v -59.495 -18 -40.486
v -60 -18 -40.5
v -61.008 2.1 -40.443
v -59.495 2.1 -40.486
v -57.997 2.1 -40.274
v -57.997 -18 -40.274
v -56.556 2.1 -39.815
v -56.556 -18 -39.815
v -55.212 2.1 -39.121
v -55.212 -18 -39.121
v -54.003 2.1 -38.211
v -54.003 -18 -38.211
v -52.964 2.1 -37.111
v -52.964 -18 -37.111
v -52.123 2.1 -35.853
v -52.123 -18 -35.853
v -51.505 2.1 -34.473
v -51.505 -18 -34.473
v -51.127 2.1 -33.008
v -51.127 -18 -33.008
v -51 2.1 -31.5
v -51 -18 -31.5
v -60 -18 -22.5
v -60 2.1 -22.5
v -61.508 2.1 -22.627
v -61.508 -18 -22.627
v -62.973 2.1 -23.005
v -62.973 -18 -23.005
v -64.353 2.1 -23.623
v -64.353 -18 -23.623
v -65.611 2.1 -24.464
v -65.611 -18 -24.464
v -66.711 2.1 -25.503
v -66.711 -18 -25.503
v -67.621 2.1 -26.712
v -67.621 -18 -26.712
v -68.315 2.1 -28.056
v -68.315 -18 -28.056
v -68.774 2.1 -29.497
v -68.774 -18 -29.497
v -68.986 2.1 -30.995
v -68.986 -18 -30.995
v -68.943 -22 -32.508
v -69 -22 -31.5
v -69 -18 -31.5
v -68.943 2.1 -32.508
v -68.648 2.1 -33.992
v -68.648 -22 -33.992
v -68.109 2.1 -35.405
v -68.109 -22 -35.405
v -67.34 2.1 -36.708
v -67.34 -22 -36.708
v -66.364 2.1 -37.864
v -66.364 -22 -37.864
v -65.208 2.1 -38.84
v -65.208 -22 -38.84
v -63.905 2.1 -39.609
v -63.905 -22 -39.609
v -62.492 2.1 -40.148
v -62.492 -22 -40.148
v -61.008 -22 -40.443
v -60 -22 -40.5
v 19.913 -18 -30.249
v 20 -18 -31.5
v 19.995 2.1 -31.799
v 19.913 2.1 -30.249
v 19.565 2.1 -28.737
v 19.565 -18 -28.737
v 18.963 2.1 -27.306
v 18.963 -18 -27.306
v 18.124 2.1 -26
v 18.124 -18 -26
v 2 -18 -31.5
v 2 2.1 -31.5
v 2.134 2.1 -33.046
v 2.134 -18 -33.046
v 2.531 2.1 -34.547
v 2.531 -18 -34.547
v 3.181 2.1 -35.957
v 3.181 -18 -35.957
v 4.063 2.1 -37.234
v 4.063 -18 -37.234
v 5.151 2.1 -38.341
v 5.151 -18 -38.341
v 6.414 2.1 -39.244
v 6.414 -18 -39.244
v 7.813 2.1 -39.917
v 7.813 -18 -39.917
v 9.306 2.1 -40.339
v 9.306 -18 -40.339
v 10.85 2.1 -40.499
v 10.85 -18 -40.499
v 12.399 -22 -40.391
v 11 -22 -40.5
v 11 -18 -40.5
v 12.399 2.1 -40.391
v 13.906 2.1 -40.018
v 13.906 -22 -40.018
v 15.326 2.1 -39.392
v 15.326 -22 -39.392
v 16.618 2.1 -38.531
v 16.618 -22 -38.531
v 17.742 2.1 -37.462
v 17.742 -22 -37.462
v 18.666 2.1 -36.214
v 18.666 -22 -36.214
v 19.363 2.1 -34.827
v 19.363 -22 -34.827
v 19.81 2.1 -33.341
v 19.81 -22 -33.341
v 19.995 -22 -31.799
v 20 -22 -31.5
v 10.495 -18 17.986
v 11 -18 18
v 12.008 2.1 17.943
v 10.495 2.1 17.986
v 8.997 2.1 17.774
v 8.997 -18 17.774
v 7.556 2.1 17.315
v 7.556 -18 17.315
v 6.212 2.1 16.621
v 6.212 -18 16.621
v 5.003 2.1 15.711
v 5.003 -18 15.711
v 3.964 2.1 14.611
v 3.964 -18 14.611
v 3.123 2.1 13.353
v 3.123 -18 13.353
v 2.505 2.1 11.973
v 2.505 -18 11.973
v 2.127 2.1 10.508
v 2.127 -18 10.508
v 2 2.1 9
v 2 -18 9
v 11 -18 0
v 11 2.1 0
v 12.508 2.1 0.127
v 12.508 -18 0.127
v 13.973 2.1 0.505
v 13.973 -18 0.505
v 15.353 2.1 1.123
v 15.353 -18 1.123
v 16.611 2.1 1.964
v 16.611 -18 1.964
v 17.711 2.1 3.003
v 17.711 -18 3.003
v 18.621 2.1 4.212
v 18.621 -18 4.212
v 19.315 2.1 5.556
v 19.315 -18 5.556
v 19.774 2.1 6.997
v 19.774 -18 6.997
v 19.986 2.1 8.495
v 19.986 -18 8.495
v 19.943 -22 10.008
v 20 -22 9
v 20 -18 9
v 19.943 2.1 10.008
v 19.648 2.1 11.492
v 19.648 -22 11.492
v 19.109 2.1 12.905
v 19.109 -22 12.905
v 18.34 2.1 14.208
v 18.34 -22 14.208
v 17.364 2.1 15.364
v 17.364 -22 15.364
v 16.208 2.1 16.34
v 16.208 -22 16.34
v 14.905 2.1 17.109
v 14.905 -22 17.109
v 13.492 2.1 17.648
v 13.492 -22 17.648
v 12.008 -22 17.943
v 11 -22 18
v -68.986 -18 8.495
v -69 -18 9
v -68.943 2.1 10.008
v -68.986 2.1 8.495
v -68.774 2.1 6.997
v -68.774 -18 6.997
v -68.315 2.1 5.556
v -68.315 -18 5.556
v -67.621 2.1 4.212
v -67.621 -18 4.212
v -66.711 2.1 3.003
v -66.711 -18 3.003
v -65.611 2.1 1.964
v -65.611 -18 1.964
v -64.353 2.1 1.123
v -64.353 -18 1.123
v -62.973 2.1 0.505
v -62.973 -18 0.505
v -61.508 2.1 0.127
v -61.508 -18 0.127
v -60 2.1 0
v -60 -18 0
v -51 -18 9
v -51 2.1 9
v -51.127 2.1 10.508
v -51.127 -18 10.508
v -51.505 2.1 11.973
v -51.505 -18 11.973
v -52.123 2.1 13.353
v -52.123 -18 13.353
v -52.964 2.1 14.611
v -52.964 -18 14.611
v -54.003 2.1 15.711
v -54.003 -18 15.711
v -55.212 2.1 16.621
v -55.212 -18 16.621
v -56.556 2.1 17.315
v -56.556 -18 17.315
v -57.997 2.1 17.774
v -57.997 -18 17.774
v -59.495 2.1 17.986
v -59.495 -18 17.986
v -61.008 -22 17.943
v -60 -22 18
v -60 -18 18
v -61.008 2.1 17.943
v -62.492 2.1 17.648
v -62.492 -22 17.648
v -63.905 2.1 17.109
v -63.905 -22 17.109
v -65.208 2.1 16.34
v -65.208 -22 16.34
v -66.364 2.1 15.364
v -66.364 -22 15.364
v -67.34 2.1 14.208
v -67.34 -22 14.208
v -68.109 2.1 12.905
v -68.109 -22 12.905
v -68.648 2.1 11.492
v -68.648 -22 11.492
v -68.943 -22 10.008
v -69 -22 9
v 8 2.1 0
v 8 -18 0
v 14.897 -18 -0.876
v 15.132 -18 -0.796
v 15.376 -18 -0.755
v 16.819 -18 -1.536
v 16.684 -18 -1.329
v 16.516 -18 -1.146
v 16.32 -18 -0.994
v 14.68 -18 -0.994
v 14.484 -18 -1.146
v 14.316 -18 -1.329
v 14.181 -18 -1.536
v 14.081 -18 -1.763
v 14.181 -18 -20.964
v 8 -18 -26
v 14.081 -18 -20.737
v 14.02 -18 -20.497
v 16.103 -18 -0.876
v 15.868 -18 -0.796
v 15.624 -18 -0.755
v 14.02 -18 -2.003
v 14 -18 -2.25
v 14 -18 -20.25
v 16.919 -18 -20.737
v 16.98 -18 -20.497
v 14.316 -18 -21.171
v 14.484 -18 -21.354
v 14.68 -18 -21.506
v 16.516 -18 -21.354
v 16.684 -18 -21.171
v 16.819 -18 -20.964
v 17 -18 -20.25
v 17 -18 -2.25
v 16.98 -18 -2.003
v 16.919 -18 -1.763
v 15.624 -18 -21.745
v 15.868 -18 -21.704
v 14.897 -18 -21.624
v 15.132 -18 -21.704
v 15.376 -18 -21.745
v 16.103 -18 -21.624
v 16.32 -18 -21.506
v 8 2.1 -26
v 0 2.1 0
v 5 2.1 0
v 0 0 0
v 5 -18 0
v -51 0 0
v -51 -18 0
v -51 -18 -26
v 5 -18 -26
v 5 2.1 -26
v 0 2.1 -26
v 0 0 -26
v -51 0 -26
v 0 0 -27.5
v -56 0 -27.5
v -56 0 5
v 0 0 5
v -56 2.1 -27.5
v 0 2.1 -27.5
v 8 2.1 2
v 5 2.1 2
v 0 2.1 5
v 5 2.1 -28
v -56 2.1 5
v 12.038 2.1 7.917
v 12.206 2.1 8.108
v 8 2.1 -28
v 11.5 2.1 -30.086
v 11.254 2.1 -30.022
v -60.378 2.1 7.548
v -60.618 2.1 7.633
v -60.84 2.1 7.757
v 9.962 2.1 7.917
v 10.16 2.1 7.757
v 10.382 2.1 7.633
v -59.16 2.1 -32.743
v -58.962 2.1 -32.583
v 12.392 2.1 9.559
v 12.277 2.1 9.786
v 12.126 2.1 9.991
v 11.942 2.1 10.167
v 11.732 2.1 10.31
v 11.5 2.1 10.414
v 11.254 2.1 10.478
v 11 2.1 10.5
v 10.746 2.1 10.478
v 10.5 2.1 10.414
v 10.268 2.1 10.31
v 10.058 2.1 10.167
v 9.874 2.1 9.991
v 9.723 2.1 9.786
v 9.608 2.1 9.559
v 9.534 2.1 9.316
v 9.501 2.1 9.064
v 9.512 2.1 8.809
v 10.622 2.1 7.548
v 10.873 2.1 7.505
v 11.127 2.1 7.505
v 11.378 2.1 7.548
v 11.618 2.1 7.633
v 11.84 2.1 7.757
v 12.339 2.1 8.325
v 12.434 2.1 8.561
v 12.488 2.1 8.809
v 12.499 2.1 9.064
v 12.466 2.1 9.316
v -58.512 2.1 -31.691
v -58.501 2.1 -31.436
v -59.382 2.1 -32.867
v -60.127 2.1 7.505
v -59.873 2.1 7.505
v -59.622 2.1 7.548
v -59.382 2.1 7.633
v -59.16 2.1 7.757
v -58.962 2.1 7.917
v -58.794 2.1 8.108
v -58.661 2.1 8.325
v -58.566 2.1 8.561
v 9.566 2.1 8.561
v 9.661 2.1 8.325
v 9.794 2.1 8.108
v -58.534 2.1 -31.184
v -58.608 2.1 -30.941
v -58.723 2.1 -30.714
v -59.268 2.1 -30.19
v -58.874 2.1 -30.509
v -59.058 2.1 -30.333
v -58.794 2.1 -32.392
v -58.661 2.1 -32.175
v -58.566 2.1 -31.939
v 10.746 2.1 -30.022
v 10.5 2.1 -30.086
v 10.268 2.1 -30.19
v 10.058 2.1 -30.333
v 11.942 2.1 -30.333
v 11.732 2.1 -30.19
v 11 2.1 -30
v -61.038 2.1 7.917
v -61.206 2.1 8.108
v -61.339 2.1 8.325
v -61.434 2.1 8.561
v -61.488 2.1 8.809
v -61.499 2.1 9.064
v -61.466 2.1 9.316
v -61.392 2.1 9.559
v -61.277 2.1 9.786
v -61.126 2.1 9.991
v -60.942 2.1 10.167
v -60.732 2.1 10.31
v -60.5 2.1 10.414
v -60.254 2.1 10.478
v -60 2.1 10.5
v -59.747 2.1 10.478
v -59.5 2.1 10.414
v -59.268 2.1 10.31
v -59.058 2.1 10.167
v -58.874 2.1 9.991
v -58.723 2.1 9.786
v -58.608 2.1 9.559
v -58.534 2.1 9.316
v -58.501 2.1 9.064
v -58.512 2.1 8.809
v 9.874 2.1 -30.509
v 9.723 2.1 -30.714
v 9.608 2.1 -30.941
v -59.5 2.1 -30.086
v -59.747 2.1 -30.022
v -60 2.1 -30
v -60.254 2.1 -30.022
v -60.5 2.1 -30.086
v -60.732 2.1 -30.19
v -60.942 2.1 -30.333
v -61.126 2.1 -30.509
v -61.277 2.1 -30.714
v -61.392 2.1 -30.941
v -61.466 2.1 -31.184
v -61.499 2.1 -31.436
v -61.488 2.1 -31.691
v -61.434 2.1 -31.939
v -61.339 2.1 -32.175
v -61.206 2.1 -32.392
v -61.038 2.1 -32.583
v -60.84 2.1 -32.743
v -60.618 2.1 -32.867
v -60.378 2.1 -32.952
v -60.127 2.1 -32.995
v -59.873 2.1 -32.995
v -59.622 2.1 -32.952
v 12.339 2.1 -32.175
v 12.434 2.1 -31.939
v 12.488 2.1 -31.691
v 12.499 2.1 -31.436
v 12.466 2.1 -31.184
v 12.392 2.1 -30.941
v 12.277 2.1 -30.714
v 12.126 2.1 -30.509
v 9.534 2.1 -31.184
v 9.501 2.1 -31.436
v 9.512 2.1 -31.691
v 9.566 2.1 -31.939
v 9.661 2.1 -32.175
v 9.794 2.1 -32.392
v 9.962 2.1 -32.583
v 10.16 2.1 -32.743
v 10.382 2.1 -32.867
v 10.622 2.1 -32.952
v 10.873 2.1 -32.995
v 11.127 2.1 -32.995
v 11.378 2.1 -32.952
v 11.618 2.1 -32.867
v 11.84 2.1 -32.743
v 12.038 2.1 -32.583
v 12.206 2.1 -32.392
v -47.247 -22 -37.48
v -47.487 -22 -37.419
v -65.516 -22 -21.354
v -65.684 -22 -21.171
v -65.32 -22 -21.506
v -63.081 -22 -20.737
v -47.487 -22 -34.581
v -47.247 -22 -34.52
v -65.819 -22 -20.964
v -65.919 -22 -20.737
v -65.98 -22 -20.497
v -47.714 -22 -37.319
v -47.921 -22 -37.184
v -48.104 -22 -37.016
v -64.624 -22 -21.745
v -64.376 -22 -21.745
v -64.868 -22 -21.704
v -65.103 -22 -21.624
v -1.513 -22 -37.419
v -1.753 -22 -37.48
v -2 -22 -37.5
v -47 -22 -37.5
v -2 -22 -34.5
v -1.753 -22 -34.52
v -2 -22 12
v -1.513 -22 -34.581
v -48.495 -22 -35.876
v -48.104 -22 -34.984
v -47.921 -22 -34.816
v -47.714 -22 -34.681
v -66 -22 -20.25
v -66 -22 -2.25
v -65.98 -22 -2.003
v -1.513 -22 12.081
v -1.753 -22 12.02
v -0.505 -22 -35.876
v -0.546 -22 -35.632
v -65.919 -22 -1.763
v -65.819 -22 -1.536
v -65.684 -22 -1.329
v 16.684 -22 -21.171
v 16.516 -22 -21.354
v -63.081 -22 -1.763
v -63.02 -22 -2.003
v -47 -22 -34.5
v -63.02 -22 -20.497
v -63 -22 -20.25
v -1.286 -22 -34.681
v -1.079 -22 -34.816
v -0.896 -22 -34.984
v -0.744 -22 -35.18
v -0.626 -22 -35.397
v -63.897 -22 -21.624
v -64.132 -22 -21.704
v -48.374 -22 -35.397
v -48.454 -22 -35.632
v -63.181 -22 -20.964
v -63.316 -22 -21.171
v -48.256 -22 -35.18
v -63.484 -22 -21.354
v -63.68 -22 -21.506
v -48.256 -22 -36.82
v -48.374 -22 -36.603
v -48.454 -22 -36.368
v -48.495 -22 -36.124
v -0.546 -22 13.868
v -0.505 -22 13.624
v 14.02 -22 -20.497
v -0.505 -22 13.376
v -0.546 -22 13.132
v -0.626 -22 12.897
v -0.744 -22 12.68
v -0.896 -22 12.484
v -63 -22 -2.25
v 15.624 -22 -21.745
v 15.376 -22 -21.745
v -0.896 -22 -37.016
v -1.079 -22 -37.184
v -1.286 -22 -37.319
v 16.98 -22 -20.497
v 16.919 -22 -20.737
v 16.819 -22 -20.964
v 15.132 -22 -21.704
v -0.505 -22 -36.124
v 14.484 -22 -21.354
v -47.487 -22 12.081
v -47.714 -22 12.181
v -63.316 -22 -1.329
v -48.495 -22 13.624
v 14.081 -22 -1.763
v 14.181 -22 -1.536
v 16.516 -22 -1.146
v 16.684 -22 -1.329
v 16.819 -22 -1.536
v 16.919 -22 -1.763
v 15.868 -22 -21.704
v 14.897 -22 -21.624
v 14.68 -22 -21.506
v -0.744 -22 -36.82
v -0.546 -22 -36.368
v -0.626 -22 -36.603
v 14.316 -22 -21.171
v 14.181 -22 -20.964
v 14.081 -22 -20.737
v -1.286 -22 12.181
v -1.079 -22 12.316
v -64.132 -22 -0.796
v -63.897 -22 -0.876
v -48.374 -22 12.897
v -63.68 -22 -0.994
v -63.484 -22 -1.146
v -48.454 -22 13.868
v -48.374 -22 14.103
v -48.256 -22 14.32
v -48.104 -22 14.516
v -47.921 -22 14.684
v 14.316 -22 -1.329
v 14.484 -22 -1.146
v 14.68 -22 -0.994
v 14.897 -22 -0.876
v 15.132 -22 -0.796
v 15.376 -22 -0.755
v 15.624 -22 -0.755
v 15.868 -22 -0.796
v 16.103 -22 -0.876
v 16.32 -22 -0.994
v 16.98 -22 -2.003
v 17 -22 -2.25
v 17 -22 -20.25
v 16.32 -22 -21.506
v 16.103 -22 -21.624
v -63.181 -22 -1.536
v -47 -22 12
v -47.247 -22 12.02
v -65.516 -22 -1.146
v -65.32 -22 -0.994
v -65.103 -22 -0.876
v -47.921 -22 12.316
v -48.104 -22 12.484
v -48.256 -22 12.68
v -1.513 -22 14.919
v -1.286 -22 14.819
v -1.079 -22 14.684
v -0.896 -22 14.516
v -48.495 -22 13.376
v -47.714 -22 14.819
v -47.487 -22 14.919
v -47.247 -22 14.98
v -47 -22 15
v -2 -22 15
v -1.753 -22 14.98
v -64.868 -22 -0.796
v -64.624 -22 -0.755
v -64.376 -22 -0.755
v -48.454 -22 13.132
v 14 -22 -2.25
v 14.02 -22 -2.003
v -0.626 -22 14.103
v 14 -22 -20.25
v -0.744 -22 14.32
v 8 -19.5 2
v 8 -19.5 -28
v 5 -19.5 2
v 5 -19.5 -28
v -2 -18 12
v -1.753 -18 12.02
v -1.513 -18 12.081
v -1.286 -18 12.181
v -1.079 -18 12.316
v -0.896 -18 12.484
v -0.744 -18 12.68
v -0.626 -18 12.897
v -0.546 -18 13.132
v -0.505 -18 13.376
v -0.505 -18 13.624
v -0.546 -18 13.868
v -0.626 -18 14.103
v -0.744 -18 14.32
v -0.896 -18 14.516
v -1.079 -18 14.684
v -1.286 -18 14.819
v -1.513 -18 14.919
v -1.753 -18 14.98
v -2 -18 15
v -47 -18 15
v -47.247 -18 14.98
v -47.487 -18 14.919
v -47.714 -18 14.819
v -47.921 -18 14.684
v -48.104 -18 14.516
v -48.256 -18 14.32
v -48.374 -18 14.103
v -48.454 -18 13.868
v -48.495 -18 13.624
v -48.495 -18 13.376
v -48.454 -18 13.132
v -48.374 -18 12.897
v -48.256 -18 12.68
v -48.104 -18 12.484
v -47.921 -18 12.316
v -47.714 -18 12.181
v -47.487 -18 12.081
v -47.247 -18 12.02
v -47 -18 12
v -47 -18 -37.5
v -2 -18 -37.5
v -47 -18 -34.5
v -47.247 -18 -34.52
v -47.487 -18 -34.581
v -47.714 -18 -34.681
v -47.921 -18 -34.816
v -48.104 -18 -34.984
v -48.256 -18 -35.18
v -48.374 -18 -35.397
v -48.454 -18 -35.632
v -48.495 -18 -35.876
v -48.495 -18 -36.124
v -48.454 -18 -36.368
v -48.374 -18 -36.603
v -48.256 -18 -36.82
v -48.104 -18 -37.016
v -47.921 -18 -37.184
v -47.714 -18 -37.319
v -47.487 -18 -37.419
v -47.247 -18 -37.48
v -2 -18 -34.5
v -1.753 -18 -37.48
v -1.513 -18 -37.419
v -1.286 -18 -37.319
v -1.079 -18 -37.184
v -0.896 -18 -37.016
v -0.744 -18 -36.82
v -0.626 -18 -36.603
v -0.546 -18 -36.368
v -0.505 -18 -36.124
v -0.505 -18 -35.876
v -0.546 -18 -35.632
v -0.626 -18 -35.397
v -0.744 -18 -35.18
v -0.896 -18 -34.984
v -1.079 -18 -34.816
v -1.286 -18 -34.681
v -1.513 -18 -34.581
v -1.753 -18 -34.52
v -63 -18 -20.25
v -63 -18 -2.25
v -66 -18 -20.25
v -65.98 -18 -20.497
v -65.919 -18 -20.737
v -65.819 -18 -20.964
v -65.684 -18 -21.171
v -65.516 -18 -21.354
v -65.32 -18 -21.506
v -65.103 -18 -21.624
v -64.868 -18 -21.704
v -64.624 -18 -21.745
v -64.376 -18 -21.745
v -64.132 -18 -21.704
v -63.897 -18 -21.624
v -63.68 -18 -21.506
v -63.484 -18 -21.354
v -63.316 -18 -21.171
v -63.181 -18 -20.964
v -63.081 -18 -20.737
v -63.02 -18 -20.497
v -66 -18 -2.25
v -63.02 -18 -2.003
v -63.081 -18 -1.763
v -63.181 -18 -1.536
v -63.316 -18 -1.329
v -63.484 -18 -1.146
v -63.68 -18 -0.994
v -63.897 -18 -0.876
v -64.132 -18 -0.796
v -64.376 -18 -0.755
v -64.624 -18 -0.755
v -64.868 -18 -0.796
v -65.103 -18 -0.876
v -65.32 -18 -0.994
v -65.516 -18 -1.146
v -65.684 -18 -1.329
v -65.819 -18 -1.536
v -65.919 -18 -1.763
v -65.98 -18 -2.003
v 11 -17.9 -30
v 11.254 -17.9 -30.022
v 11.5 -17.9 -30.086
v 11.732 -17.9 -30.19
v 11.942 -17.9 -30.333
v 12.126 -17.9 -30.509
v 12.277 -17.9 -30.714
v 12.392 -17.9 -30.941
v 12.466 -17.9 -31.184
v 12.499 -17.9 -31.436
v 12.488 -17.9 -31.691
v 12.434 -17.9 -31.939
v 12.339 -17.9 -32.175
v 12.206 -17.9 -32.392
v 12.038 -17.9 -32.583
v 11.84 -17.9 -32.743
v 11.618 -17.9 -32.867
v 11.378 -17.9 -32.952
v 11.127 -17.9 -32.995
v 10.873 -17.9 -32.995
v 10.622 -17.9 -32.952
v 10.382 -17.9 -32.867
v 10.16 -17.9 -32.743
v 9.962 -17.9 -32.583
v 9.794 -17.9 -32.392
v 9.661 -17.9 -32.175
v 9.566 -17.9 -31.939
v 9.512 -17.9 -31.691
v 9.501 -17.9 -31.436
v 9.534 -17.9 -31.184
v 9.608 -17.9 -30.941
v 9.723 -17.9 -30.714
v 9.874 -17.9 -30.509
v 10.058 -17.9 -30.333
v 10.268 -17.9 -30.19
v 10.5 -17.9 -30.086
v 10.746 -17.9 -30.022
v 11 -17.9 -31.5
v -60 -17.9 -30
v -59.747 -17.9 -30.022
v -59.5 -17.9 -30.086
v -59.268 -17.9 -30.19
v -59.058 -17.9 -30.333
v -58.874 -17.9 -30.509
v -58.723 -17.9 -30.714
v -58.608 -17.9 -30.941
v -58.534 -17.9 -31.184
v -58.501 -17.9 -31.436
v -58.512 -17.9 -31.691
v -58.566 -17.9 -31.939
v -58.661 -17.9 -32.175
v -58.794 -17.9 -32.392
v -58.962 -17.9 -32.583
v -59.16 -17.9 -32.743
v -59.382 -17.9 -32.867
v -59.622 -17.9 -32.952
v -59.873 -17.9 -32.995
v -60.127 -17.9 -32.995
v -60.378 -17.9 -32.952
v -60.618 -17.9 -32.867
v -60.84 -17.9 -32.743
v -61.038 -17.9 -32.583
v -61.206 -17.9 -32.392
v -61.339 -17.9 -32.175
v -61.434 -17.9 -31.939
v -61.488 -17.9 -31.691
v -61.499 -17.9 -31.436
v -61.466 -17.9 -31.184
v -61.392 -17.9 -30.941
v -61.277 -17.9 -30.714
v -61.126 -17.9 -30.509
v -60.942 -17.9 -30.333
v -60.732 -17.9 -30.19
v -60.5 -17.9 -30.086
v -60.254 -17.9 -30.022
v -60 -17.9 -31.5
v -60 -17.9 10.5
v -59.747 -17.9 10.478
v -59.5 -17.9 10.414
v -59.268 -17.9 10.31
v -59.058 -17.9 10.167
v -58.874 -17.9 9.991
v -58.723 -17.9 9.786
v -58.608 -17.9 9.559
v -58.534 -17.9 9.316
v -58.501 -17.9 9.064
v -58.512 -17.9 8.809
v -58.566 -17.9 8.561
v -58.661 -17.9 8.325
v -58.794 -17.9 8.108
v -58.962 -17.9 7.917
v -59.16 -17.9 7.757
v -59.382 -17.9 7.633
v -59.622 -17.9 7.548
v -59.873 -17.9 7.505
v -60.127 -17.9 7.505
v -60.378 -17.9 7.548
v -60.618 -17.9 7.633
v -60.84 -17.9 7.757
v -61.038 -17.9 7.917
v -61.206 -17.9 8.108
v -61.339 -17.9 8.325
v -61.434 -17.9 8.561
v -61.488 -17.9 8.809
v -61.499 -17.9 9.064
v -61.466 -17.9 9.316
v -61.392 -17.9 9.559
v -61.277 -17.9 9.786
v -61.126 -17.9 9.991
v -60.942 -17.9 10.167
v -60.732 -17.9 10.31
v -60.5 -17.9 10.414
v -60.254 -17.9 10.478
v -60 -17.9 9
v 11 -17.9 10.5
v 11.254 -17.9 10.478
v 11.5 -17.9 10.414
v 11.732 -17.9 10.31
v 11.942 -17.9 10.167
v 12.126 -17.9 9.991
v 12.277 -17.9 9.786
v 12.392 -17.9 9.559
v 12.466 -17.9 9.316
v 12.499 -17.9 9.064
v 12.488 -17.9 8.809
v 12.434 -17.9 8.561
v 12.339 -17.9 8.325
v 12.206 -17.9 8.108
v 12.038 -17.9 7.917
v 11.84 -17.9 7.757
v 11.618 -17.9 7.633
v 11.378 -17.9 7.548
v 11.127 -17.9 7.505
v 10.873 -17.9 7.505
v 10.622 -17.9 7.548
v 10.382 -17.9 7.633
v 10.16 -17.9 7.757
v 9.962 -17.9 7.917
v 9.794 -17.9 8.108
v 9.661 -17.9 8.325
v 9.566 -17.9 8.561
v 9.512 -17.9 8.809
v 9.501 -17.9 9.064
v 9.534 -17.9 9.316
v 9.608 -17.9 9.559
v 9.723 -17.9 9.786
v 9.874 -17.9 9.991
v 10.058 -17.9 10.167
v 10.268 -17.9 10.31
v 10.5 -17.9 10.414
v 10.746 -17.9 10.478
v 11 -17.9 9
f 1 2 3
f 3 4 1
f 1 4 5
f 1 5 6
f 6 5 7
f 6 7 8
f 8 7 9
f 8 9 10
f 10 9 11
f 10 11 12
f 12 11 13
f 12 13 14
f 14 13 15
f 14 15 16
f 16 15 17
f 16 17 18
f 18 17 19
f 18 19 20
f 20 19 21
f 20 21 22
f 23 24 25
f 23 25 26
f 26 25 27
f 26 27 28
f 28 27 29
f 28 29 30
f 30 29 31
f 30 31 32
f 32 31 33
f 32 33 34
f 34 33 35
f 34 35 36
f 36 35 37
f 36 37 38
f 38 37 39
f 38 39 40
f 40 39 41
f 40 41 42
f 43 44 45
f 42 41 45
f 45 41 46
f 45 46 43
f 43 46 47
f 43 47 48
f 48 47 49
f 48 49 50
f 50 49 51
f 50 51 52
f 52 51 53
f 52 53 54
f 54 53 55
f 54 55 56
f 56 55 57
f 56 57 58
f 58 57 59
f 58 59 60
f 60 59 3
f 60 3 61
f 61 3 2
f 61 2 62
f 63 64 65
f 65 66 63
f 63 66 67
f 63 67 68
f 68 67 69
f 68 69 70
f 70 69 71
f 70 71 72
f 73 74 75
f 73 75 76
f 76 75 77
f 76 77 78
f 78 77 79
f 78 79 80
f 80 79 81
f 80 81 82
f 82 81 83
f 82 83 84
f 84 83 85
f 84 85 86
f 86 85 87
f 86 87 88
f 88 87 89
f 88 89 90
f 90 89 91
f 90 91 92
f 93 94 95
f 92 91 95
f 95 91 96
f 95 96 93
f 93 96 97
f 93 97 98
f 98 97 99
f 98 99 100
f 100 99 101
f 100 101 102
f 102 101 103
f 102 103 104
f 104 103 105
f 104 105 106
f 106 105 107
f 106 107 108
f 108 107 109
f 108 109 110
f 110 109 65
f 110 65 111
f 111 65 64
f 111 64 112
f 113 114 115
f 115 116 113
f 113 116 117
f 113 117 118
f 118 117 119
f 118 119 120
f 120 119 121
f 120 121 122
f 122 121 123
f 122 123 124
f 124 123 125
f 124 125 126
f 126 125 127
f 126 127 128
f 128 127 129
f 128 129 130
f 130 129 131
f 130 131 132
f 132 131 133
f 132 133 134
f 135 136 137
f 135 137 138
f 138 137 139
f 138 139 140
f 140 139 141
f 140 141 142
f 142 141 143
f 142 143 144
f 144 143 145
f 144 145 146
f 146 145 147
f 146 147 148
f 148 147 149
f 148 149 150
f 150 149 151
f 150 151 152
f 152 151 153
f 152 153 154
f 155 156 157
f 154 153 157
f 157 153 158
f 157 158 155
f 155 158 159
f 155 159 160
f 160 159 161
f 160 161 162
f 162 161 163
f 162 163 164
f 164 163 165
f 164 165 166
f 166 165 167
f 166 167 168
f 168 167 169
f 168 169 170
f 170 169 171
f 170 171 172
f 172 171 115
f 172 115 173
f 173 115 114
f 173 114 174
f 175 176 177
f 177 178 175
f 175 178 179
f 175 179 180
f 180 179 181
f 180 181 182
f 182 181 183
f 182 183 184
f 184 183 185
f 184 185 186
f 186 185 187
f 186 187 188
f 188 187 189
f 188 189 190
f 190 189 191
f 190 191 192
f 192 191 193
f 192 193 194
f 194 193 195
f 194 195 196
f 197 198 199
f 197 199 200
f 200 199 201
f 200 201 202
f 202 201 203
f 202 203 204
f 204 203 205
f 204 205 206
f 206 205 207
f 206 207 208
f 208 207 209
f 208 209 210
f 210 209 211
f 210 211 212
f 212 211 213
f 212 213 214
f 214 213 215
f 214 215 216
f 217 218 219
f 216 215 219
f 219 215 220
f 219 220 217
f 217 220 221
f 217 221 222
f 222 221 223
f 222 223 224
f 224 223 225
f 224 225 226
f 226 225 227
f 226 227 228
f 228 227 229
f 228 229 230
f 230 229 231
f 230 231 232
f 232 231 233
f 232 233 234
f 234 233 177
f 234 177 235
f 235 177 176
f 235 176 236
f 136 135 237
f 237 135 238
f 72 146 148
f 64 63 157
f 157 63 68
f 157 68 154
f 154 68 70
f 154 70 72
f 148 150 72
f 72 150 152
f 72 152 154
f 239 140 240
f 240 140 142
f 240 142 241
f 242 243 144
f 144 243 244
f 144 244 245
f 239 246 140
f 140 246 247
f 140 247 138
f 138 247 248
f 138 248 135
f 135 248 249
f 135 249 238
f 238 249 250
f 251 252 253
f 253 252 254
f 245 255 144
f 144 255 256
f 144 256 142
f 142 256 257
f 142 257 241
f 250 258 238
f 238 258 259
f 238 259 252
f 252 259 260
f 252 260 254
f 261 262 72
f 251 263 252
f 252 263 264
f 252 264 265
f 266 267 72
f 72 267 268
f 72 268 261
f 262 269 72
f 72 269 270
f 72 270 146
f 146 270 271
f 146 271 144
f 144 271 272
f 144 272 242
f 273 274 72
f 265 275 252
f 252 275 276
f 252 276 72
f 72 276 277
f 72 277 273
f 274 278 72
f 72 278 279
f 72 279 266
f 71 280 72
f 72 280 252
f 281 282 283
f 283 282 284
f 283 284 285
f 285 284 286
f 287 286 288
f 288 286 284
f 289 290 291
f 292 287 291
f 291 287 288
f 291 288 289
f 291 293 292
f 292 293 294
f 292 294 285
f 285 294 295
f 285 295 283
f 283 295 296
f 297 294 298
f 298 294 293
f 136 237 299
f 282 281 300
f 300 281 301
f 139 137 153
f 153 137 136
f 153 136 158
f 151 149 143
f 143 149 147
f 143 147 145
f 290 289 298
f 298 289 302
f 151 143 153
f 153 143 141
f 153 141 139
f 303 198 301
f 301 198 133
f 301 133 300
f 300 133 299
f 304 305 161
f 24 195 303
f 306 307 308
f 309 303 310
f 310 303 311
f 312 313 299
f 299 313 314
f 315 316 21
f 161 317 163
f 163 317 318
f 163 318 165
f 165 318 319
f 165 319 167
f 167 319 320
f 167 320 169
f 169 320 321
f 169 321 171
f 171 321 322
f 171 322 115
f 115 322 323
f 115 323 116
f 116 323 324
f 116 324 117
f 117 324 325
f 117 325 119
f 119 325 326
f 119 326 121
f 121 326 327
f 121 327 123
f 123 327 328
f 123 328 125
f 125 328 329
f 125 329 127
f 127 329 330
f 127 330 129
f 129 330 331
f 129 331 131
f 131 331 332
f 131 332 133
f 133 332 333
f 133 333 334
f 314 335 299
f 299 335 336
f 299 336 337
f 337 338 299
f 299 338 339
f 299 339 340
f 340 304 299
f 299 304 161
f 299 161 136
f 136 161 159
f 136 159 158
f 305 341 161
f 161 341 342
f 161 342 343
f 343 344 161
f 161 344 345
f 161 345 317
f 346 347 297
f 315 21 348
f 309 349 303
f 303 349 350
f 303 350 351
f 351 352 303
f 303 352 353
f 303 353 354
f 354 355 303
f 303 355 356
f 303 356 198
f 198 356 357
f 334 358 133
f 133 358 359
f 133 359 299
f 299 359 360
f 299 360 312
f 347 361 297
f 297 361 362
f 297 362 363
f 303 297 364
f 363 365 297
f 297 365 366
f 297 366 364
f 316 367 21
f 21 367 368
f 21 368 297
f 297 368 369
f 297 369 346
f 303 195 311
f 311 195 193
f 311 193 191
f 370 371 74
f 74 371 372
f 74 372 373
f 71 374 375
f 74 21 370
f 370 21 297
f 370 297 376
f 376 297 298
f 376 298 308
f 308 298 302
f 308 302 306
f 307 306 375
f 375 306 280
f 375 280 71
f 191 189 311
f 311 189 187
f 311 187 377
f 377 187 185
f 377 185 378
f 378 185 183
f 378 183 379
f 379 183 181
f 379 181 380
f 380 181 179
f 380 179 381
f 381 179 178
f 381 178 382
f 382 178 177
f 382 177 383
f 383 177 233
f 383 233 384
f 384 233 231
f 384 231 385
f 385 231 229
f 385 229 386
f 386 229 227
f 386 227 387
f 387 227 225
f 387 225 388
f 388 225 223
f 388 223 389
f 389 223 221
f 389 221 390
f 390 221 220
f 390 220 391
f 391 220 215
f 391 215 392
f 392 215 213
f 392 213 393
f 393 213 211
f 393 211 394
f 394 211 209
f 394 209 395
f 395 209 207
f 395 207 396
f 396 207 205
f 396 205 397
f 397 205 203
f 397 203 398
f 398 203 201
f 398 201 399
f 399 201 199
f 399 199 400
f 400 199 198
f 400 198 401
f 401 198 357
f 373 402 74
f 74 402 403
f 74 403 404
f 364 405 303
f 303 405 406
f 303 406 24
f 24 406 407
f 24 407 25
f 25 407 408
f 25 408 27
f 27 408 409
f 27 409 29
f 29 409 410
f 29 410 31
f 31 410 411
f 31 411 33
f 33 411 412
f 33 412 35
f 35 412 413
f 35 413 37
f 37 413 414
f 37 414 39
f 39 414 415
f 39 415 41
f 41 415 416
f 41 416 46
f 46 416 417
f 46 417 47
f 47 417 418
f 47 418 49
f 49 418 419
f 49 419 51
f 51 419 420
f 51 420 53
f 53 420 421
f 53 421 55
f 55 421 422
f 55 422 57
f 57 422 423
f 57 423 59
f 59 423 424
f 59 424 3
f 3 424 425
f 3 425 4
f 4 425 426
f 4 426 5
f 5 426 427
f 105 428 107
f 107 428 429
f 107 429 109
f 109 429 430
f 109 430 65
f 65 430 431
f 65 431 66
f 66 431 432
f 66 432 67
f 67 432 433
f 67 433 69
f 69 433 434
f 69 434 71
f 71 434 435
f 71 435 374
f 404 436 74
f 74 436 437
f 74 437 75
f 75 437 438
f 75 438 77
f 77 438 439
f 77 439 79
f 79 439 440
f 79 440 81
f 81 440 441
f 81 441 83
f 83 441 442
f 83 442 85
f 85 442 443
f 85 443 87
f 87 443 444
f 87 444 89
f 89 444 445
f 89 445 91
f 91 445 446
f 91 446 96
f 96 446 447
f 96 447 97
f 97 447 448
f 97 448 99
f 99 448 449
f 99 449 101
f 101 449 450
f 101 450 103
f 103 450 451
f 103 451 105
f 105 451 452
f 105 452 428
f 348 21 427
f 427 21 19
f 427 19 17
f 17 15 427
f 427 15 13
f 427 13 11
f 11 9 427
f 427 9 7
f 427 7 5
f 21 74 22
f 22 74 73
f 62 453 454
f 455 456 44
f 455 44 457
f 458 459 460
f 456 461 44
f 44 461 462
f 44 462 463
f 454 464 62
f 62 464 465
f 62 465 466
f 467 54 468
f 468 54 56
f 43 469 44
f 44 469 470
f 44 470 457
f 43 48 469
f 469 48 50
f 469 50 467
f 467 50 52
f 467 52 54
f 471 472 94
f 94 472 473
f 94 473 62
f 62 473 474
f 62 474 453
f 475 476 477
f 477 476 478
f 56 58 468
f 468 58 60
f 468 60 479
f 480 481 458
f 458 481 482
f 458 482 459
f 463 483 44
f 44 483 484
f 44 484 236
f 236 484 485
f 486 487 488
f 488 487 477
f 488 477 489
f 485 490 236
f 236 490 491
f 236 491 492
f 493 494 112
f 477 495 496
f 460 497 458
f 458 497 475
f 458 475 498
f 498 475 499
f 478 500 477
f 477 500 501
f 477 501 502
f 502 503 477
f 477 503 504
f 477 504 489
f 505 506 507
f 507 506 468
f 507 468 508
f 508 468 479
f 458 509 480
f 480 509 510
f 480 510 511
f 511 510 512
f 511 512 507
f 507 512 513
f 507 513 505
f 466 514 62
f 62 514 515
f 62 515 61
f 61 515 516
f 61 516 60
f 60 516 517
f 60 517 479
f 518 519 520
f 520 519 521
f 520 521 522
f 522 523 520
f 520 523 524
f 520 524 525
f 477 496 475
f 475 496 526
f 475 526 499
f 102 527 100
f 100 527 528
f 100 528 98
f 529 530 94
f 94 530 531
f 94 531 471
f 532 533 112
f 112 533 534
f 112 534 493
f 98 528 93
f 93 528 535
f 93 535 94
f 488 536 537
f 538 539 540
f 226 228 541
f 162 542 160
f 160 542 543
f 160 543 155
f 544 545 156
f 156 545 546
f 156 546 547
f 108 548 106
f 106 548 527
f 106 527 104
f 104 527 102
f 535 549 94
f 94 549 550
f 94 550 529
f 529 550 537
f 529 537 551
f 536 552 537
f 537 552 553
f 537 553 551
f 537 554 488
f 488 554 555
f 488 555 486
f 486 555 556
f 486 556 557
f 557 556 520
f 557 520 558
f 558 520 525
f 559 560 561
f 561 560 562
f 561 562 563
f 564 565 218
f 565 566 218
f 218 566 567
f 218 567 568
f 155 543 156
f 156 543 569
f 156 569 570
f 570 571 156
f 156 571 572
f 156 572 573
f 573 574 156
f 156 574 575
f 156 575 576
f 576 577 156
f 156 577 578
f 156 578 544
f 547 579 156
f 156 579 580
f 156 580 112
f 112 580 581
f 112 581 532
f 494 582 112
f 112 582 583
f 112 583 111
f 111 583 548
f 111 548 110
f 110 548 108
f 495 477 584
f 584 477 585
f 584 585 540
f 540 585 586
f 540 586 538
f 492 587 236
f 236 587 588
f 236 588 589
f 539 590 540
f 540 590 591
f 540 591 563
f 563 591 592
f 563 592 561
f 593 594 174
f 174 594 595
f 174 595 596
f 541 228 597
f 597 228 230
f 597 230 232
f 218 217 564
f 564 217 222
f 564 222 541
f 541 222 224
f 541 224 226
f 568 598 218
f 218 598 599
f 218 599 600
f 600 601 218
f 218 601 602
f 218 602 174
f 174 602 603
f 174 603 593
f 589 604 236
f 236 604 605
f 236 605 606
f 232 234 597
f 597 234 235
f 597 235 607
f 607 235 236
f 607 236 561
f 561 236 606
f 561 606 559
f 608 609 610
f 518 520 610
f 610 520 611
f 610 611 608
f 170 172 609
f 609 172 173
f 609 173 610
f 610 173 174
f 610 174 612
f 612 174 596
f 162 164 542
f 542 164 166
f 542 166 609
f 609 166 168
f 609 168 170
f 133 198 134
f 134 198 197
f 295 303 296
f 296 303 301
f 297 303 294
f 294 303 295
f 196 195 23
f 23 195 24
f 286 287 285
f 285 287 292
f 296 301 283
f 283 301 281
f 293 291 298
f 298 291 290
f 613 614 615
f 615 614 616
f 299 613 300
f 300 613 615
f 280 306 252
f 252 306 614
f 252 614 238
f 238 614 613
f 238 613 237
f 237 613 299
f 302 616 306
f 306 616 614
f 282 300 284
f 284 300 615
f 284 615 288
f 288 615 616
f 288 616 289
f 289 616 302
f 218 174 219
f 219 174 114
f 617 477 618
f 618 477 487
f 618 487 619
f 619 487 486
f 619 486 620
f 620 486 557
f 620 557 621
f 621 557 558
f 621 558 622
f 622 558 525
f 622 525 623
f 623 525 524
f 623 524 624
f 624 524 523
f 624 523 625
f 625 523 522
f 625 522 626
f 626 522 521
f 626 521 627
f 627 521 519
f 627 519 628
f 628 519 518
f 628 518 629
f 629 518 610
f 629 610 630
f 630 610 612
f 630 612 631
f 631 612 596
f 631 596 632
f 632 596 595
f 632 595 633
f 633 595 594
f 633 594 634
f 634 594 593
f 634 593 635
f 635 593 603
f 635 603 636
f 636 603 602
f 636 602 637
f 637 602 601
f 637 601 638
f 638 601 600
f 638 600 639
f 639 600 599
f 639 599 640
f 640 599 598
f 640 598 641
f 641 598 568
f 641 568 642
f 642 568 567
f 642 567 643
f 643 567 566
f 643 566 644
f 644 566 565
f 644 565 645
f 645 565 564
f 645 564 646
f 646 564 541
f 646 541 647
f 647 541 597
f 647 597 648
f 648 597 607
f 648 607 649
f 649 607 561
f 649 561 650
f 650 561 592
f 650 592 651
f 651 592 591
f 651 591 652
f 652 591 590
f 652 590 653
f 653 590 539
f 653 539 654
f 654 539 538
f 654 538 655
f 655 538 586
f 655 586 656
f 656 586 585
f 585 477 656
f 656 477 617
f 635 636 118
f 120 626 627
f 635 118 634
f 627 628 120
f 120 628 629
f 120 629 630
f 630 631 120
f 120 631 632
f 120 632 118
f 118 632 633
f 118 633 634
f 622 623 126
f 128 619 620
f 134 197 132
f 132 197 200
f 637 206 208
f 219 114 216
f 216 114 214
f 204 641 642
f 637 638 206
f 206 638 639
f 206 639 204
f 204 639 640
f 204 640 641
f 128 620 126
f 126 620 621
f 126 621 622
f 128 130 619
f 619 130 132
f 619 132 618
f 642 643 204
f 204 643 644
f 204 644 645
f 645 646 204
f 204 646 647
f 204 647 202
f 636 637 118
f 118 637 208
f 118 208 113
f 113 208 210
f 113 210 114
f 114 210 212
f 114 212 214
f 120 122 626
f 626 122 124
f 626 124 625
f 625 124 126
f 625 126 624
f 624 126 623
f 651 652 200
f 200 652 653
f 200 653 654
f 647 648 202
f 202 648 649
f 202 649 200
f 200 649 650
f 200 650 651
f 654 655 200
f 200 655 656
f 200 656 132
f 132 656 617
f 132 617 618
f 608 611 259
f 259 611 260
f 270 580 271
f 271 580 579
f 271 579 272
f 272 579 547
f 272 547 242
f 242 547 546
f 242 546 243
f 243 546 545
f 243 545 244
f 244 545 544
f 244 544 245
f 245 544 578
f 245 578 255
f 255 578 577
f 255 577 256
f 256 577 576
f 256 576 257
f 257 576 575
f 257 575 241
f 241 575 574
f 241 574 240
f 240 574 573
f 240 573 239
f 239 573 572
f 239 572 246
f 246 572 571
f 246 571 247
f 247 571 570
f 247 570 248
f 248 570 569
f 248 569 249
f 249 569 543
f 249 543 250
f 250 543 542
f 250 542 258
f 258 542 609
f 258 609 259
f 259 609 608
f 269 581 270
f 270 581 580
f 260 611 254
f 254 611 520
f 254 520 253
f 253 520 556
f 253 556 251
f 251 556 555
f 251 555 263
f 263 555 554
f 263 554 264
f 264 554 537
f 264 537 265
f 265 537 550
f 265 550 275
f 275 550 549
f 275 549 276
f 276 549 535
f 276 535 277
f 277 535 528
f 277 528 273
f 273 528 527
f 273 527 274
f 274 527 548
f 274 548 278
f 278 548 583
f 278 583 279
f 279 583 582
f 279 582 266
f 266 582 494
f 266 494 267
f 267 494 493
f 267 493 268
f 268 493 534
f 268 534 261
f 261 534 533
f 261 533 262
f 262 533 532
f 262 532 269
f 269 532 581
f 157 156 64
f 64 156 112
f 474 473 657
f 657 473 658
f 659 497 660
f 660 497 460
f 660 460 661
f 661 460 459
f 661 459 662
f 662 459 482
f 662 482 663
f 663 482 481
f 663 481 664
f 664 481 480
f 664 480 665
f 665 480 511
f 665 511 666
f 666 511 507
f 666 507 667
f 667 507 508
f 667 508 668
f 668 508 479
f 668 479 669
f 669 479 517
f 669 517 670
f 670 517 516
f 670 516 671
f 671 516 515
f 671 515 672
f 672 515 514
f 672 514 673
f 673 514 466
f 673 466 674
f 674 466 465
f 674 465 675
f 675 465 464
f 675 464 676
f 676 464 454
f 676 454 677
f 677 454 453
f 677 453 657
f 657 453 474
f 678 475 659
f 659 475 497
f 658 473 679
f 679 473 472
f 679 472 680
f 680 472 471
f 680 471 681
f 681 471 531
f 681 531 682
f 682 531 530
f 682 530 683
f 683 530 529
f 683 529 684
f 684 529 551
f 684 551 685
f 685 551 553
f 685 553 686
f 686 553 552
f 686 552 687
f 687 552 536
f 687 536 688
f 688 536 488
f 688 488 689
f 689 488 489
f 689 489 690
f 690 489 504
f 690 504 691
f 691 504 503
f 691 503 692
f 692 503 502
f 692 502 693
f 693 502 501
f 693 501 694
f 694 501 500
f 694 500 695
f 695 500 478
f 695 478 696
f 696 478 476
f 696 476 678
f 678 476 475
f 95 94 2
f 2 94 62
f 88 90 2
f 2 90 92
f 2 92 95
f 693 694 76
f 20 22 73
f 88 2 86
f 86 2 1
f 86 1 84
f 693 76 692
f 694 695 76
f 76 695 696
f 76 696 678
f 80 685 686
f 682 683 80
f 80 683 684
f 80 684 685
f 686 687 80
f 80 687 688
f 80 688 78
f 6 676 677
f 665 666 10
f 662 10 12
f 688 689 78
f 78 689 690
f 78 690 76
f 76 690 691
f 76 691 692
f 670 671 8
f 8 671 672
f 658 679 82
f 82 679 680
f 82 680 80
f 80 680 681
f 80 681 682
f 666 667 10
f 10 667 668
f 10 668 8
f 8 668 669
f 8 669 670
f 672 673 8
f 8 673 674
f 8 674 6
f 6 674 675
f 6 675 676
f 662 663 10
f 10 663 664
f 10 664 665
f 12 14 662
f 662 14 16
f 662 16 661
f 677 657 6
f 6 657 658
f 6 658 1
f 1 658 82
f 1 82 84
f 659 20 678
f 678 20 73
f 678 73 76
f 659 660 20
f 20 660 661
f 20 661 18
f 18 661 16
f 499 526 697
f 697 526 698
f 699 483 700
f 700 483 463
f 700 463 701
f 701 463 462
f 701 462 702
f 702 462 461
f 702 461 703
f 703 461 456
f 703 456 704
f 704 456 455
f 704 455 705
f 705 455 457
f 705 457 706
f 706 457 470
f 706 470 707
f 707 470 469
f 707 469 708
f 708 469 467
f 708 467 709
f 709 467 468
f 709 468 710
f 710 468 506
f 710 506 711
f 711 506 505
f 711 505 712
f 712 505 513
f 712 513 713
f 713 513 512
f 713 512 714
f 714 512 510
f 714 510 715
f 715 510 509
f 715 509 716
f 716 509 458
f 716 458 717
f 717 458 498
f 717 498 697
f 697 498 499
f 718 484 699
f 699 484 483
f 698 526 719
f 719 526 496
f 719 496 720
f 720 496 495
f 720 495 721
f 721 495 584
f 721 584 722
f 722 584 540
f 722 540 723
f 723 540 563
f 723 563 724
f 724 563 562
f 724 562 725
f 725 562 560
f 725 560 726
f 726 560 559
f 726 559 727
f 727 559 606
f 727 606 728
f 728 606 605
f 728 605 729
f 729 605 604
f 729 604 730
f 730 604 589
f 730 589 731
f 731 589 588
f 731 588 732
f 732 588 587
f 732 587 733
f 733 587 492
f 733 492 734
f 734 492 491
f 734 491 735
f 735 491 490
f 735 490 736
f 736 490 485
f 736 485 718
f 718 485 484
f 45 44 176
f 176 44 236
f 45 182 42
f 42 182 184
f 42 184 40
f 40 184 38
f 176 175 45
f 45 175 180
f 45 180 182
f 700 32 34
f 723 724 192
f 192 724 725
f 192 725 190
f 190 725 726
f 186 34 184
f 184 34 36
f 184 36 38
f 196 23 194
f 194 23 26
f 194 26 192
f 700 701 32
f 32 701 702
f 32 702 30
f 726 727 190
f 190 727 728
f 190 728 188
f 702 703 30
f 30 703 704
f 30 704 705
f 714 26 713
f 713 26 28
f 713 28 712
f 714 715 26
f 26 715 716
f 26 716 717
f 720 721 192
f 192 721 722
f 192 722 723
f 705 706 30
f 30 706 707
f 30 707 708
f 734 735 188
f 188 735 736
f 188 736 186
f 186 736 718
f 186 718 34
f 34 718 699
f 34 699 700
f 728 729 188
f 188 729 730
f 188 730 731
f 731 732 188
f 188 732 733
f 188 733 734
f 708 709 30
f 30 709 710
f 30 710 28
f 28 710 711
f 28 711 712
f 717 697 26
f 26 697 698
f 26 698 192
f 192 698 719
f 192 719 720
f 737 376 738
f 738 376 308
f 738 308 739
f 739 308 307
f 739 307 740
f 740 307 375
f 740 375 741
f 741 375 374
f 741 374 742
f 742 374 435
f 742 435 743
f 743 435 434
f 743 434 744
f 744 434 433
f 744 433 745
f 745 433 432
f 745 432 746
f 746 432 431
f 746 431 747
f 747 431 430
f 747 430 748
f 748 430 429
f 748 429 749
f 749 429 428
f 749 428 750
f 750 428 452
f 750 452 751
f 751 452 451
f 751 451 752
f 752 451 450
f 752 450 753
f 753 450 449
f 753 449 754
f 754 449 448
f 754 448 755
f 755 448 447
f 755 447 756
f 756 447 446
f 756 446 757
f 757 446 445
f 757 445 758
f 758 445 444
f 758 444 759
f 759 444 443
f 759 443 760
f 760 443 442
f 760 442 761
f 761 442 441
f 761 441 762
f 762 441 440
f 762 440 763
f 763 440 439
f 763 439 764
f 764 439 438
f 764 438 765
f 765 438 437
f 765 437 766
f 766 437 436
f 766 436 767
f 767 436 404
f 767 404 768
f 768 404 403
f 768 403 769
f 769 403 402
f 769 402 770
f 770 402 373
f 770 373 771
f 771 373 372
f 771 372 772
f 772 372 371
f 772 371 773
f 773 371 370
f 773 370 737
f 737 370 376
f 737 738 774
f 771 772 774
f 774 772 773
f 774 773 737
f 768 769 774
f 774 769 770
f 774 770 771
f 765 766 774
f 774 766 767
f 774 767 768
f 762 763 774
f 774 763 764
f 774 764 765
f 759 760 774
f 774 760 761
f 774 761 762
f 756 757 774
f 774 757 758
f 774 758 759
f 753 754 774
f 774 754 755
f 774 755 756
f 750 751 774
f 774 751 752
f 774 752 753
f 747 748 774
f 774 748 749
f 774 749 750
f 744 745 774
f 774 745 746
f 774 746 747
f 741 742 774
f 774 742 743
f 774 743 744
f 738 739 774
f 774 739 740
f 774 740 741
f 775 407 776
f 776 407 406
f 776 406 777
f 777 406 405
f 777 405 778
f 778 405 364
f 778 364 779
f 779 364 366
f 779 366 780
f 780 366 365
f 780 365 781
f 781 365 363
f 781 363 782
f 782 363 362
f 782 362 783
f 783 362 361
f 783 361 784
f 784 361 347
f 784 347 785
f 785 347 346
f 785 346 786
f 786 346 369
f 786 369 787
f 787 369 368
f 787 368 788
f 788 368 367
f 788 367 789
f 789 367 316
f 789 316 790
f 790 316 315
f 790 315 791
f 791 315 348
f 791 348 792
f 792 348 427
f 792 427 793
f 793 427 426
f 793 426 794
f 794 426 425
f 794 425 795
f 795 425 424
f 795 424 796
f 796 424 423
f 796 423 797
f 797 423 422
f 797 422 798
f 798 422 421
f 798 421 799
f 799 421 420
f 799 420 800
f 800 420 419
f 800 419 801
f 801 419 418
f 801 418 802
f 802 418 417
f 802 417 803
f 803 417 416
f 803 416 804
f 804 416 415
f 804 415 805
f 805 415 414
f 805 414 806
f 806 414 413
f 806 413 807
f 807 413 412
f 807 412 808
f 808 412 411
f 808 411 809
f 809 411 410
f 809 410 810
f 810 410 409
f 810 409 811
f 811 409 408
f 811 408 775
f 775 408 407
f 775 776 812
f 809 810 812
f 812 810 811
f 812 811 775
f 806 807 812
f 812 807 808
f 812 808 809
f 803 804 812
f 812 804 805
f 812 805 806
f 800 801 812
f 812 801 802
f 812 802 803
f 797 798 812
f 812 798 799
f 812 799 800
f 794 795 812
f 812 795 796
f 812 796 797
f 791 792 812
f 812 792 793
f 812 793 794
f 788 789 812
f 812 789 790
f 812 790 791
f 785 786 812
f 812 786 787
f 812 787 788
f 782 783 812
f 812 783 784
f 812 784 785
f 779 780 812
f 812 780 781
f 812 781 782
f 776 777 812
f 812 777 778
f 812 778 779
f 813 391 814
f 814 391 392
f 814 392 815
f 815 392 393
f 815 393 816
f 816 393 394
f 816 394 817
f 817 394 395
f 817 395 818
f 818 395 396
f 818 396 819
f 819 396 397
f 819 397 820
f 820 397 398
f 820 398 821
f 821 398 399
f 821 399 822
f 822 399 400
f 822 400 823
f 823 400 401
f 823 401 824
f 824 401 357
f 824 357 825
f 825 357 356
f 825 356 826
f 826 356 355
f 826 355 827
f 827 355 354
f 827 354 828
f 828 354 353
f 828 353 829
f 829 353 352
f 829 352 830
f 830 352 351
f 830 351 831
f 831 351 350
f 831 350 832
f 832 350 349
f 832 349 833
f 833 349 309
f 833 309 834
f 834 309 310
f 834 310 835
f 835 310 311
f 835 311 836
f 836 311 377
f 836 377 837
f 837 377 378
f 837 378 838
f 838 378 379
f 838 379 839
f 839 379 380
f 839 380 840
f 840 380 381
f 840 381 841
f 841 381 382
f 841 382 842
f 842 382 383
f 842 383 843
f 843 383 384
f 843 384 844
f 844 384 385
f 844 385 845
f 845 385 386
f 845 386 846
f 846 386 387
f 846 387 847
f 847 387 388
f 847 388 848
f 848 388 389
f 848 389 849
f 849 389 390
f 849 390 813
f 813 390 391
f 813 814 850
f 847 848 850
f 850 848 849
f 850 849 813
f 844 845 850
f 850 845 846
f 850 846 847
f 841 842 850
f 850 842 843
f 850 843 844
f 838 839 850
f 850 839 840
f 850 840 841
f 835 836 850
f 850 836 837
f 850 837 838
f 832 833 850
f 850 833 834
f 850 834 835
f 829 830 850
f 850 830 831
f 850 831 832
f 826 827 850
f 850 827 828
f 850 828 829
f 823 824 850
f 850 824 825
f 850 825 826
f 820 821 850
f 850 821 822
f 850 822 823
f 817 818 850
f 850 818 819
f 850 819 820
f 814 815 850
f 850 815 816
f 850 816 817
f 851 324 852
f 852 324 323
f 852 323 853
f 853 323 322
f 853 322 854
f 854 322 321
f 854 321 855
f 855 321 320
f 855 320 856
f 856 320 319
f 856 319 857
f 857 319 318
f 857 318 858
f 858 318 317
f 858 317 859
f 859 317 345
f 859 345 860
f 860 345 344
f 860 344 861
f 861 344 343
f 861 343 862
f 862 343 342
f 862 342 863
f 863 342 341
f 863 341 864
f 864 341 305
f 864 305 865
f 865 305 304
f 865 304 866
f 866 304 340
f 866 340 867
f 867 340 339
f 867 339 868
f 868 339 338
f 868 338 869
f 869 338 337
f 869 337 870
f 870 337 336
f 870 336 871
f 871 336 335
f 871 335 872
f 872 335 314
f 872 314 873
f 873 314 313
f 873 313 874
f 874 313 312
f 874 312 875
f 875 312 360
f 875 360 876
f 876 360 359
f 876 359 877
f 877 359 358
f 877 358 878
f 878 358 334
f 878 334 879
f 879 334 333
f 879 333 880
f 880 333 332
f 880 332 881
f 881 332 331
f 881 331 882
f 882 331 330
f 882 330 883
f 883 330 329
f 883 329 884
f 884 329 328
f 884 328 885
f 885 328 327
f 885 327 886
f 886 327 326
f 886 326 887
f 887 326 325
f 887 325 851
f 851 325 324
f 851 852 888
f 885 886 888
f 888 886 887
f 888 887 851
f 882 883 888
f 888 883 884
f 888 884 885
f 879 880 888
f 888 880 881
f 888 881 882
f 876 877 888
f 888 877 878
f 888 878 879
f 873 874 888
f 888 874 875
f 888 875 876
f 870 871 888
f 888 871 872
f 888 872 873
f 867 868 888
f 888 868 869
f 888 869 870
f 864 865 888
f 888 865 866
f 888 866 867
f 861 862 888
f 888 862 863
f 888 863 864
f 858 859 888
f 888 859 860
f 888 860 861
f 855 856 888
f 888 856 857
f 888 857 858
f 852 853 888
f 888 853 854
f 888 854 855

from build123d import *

# Parameters (mm, degrees)
BOSS_EXTRUDE1_DEPTH = 56
SKETCH2_W           = 40.5
SKETCH2_H           = 24.1
BOSS_EXTRUDE2_DEPTH = 4
SKETCH3_W           = 26
SKETCH3_H           = 18
BOSS_EXTRUDE4_DEPTH = 5
BOSS_EXTRUDE5_DEPTH = 11
SKETCH6_W           = 3
SKETCH6_H           = 30
CUT_EXTRUDE1_DEPTH  = 21.6
BOSS_EXTRUDE6_DEPTH = 24.1
BOSS_EXTRUDE7_DEPTH = 4
SKETCH9_R           = 1.5
CUT_EXTRUDE2_DEPTH  = 20


with BuildPart() as part:
    # Sketch1 → Boss-Extrude1 (new body)
    with BuildSketch(Plane(origin=(0, 0, 0), x_dir=(0, 0, -1), z_dir=(1, 0, 0))):
        Polygon((0, 0), (0, -18), (26, -18), (26, 0), (27.5, 0), (27.5, 2.1), (31.5, 2.1), (31.5, -22), (-9, -22), (-9, 2.1), (-5, 2.1), (-5, 0), align=None)
    extrude(amount=-BOSS_EXTRUDE1_DEPTH)

    # Sketch2 → Boss-Extrude2 (add)
    with BuildSketch(Plane.ZY.offset(56)):
        with Locations((-11.25, -9.95)):
            Rectangle(SKETCH2_W, SKETCH2_H)
    extrude(amount=BOSS_EXTRUDE2_DEPTH)

    # Sketch3 → Boss-Extrude4 (add)
    with BuildSketch(Plane(origin=(-56, 0, 0), x_dir=(0, 0, -1), z_dir=(1, 0, 0))):
        with Locations((13, -9)):
            Rectangle(SKETCH3_W, SKETCH3_H)
    extrude(amount=BOSS_EXTRUDE4_DEPTH)

    # Sketch5 → Boss-Extrude5 (add)
    with BuildSketch(Plane(origin=(0, 0, 0), x_dir=(0, 0, -1), z_dir=(1, 0, 0))):
        Polygon((0, 0), (0, 2.1), (-5, 2.1), (-9, 2.1), (-9, -22), (31.5, -22), (31.5, 2.1), (27.5, 2.1), (26, 2.1), (26, 0), (26, -18), (0, -18), align=None)
    extrude(amount=BOSS_EXTRUDE5_DEPTH)

    # Sketch6 → Cut-Extrude1 (cut)
    with BuildSketch(Plane(origin=(0, 2.1, 0), x_dir=(1, 0, 0), z_dir=(0, 1, 0))):
        with Locations((6.5, 13)):
            Rectangle(SKETCH6_W, SKETCH6_H)
    extrude(amount=-CUT_EXTRUDE1_DEPTH, mode=Mode.SUBTRACT)

    # Sketch7 → Boss-Extrude6 (add)
    with BuildSketch(Plane.XZ.offset(22)):
        with BuildLine():
            Line((-60, -22.5), (-60, -31.5))
            Line((-60, -31.5), (-51, -31.5))
            ThreePointArc((-51, -31.5), (-66.363961031, -37.863961031), (-60, -22.5))
        make_face()
        with BuildLine():
            Line((2, -31.5), (11, -31.5))
            Line((11, -31.5), (11, -26))
            Line((11, -26), (18.123903424, -26))
            ThreePointArc((18.123903424, -26), (13.905586789, -40.018072869), (2, -31.5))
        make_face()
        with BuildLine():
            Line((-60, 0), (-60, 9))
            Line((-60, 9), (-51, 9))
            ThreePointArc((-51, 9), (-66.363961031, 15.363961031), (-60, 0))
        make_face()
        with BuildLine():
            Line((2, 9), (11, 9))
            Line((11, 9), (11, 0))
            ThreePointArc((11, 0), (17.363961031, 15.363961031), (2, 9))
        make_face()
    extrude(amount=-BOSS_EXTRUDE6_DEPTH)

    # Sketch8 → Boss-Extrude7 (add)
    with BuildSketch(Plane.XZ.offset(22)):
        with BuildLine():
            Line((11, 18), (-60, 18))
            ThreePointArc((-60, 18), (-53.636038969, 15.363961031), (-51, 9))
            Line((-51, 9), (2, 9))
            ThreePointArc((2, 9), (4.636038969, 15.363961031), (11, 18))
        make_face()
        with BuildLine():
            ThreePointArc((-47, 12), (-48.5, 13.5), (-47, 15))
            Line((-47, 15), (-2, 15))
            ThreePointArc((-2, 15), (-0.5, 13.5), (-2, 12))
            Line((-2, 12), (-47, 12))
        make_face(mode=Mode.SUBTRACT)
        with BuildLine():
            Line((20, -31.5), (20, 9))
            ThreePointArc((20, 9), (17.363961031, 2.636038969), (11, 0))
            Line((11, 0), (11, -26))
            Line((11, -26), (18.123903424, -26))
            ThreePointArc((18.123903424, -26), (19.518072869, -28.594413211), (20, -31.5))
        make_face()
        with BuildLine():
            ThreePointArc((14, -2.25), (15.5, -0.75), (17, -2.25))
            Line((17, -2.25), (17, -20.25))
            ThreePointArc((17, -20.25), (15.5, -21.75), (14, -20.25))
            Line((14, -20.25), (14, -2.25))
        make_face(mode=Mode.SUBTRACT)
        with BuildLine():
            ThreePointArc((-51, -31.5), (-53.636038969, -37.863961031), (-60, -40.5))
            Line((-60, -40.5), (11, -40.5))
            ThreePointArc((11, -40.5), (4.636038969, -37.863961031), (2, -31.5))
            Line((2, -31.5), (-51, -31.5))
        make_face()
        with BuildLine():
            ThreePointArc((-47, -37.5), (-48.5, -36), (-47, -34.5))
            Line((-47, -34.5), (-2, -34.5))
            ThreePointArc((-2, -34.5), (-0.5, -36), (-2, -37.5))
            Line((-2, -37.5), (-47, -37.5))
        make_face(mode=Mode.SUBTRACT)
        with BuildLine():
            ThreePointArc((-60, 0), (-66.363961031, 2.636038969), (-69, 9))
            Line((-69, 9), (-69, -31.5))
            ThreePointArc((-69, -31.5), (-66.363961031, -25.136038969), (-60, -22.5))
            Line((-60, -22.5), (-60, 0))
        make_face()
        with BuildLine():
            ThreePointArc((-63, -20.25), (-64.5, -21.75), (-66, -20.25))
            Line((-66, -20.25), (-66, -2.25))
            ThreePointArc((-66, -2.25), (-64.5, -0.75), (-63, -2.25))
            Line((-63, -2.25), (-63, -20.25))
        make_face(mode=Mode.SUBTRACT)
    extrude(amount=-BOSS_EXTRUDE7_DEPTH)

    # Sketch9 → Cut-Extrude2 (cut)
    with BuildSketch(Plane(origin=(0, 2.1, 0), x_dir=(1, 0, 0), z_dir=(0, 1, 0))):
        with Locations((11, 31.5)):
            Circle(SKETCH9_R)
        with Locations((-60, 31.5)):
            Circle(SKETCH9_R)
        with Locations((-60, -9)):
            Circle(SKETCH9_R)
        with Locations((11, -9)):
            Circle(SKETCH9_R)
    extrude(amount=-CUT_EXTRUDE2_DEPTH, mode=Mode.SUBTRACT)


solid = part.part
